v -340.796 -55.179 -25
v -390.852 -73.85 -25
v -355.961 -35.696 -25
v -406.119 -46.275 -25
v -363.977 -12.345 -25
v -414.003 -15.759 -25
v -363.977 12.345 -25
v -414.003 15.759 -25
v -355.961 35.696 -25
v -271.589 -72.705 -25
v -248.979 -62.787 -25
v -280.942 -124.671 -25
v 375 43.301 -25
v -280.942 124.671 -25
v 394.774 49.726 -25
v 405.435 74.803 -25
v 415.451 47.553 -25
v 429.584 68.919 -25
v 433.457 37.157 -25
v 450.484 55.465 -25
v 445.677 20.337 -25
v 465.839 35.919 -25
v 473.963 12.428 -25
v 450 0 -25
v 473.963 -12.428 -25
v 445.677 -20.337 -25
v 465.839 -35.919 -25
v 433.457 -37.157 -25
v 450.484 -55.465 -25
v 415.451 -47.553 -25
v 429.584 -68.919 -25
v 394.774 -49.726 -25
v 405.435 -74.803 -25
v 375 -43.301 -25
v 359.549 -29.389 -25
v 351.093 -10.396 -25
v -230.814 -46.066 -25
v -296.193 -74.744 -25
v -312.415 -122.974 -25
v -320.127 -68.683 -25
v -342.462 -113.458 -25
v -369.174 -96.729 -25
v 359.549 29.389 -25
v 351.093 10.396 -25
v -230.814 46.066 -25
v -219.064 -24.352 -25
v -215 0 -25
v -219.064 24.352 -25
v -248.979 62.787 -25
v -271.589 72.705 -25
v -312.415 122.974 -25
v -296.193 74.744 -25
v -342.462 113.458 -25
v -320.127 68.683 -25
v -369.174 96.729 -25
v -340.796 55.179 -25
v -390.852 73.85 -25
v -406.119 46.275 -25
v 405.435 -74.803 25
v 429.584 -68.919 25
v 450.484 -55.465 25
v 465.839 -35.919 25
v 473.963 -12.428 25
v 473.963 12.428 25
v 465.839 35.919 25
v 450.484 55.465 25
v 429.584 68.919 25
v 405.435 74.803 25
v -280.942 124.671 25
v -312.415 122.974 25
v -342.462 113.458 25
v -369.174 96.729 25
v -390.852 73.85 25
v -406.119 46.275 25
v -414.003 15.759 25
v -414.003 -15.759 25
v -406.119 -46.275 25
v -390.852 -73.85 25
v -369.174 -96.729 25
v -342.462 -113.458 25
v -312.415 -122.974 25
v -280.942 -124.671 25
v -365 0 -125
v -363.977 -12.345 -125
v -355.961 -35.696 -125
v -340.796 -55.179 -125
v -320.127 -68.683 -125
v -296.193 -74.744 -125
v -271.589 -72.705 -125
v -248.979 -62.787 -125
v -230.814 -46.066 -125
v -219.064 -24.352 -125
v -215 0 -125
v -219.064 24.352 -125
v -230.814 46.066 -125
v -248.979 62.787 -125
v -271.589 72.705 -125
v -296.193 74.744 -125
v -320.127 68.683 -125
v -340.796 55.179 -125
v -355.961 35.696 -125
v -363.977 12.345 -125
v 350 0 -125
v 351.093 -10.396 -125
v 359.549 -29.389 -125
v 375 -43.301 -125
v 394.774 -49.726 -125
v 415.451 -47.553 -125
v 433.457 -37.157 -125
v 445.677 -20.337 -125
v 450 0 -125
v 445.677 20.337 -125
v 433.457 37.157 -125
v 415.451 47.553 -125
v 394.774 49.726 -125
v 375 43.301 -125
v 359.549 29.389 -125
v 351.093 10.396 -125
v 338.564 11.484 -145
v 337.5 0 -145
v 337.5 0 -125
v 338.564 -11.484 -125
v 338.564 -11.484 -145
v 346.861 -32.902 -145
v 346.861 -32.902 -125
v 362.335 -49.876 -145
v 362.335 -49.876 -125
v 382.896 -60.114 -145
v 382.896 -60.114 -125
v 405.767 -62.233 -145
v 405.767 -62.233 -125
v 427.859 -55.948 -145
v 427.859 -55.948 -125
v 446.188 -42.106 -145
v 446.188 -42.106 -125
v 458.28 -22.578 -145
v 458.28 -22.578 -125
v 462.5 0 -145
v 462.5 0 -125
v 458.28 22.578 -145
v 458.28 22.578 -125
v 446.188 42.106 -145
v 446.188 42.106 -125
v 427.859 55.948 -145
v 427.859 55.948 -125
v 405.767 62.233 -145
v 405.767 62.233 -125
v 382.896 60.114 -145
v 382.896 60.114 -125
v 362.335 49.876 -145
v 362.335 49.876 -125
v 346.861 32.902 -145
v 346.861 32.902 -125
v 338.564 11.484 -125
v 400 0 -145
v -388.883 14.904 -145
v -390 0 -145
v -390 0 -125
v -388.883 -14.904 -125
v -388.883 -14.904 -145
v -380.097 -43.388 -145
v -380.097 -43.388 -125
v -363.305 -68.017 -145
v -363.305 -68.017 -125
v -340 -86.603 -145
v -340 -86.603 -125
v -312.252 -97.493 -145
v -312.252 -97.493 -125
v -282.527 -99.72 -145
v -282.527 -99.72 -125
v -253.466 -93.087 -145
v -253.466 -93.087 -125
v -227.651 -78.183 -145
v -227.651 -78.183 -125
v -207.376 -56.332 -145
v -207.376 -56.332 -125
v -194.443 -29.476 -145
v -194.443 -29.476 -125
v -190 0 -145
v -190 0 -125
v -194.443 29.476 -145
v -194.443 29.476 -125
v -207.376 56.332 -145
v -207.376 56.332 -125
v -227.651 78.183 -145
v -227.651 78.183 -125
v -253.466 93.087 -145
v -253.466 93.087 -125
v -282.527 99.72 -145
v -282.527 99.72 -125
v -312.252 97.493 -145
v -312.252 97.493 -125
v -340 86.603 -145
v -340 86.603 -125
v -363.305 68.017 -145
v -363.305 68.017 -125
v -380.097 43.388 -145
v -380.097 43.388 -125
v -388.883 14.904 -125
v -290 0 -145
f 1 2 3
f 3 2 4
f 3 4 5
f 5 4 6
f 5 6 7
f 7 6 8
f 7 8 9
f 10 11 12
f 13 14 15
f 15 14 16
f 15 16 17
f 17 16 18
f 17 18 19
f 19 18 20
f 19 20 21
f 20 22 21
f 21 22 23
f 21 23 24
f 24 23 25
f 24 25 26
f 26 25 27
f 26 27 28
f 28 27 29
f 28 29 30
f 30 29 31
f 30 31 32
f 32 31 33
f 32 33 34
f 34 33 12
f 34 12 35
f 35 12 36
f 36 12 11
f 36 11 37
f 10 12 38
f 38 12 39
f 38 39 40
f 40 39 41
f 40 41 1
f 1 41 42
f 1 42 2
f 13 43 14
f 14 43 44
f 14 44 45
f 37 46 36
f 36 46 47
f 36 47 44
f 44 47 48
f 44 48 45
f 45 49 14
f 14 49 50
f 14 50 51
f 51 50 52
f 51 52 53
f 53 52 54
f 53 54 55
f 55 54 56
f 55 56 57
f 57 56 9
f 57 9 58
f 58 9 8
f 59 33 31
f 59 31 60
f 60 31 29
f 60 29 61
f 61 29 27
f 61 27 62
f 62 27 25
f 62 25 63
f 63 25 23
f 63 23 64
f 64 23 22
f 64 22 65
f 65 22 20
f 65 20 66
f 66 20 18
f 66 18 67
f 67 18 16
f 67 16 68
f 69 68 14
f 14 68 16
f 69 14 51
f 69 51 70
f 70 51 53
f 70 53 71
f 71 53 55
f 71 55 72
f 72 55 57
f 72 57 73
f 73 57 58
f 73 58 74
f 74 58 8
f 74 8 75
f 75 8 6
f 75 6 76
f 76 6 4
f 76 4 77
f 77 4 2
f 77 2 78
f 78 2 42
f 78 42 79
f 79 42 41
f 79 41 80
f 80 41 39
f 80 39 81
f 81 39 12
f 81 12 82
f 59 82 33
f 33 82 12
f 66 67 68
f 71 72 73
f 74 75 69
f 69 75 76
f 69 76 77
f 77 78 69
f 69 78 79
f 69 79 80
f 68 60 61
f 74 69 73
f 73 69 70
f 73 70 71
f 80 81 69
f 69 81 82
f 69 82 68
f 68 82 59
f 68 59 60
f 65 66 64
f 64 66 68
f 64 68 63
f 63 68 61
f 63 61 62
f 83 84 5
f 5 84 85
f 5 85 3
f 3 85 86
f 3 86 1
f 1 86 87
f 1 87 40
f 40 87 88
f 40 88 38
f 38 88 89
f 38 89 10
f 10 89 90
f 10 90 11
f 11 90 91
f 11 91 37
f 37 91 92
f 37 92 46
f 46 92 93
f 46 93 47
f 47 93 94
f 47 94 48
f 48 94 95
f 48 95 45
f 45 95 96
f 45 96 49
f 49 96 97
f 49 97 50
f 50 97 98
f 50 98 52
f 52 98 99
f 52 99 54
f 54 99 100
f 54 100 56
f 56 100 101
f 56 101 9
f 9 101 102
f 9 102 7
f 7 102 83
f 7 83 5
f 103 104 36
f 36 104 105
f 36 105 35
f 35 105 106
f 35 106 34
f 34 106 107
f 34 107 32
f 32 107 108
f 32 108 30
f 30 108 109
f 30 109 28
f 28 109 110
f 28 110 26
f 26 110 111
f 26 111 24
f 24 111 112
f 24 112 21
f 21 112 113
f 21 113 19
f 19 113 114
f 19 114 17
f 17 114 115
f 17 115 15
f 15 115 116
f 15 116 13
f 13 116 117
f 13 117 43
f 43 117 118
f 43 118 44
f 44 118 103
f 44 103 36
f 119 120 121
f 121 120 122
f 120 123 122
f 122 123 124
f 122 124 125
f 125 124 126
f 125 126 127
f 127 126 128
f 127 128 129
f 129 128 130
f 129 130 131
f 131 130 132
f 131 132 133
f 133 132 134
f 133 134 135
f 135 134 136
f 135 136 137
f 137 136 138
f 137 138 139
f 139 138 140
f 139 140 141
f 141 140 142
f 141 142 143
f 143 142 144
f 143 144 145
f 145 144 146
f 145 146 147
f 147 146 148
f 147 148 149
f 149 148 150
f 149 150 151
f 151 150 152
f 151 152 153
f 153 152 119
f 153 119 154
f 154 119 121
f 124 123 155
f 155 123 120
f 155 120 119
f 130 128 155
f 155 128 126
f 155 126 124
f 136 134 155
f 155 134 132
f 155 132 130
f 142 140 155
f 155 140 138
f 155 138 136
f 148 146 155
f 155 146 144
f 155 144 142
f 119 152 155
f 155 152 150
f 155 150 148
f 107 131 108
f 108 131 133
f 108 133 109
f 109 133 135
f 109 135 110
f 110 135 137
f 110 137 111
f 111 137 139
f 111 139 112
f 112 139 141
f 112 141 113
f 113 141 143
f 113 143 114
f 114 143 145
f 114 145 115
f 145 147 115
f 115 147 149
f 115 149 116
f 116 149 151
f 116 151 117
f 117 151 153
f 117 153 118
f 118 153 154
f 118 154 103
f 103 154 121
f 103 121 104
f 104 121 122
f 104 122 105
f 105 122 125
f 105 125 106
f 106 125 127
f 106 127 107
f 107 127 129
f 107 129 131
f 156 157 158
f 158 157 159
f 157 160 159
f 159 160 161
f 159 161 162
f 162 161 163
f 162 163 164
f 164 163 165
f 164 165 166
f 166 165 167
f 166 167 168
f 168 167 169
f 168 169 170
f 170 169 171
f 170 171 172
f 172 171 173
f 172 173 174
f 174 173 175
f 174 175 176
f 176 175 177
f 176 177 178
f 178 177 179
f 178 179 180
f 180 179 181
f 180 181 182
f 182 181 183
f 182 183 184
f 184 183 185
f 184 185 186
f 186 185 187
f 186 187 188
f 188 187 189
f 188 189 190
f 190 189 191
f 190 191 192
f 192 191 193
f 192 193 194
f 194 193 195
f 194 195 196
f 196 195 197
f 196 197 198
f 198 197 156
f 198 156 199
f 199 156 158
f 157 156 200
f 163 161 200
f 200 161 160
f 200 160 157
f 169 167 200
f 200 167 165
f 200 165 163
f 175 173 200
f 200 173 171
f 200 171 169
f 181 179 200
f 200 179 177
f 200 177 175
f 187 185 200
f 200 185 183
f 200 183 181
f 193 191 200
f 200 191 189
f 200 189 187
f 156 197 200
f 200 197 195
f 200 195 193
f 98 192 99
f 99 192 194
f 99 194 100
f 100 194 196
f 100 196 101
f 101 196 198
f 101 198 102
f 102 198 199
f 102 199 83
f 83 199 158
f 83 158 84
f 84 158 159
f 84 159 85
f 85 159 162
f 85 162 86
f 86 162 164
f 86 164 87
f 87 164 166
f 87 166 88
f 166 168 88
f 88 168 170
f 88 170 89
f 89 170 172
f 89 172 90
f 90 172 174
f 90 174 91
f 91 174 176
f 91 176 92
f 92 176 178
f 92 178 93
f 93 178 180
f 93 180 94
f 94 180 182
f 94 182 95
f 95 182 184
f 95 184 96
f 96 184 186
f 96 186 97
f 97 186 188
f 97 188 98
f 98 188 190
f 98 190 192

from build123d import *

# Parameters (mm, degrees)
BOSS_EXTRUDE1_DEPTH = 25
SKETCH2_R           = 75
SKETCH2_R_2         = 50
BOSS_EXTRUDE2_DEPTH = 100
SKETCH3_R           = 62.5
SKETCH3_R_2         = 100
BOSS_EXTRUDE3_DEPTH = 20


with BuildPart() as part:
    # Sketch1 → Boss-Extrude1 (new, symmetric)
    with BuildSketch(Plane.XY):
        with BuildLine():
            ThreePointArc((-215, 0), (-290, 75), (-365, 0))
            Line((-365, 0), (-215, 0))
        make_face()
        with BuildLine():
            Line((-215, 0), (-365, 0))
            ThreePointArc((-365, 0), (-290, -75), (-215, 0))
        make_face()
        with BuildLine():
            Line((405.434782609, 74.802828409), (-280.942028986, 124.671380682))
            ThreePointArc((-280.942028986, 124.671380682), (-375.125653076, 91.534819541), (-415, 0))
            Line((-415, 0), (-365, 0))
            ThreePointArc((-365, 0), (-290, 75), (-215, 0))
            Line((-215, 0), (350, 0))
            ThreePointArc((350, 0), (400, 50), (450, 0))
            Line((450, 0), (475, 0))
            ThreePointArc((475, 0), (454.920891725, 51.075391846), (405.434782609, 74.802828409))
        make_face()
        with BuildLine():
            Line((-365, 0), (-415, 0))
            ThreePointArc((-415, 0), (-375.125653076, -91.534819541), (-280.942028986, -124.671380682))
            Line((-280.942028986, -124.671380682), (405.434782609, -74.802828409))
            ThreePointArc((405.434782609, -74.802828409), (454.920891725, -51.075391846), (475, 0))
            Line((475, 0), (450, 0))
            ThreePointArc((450, 0), (400, -50), (350, 0))
            Line((350, 0), (-215, 0))
            ThreePointArc((-215, 0), (-290, -75), (-365, 0))
        make_face()
        with BuildLine():
            ThreePointArc((350, 0), (400, -50), (450, 0))
            Line((450, 0), (350, 0))
        make_face()
        with BuildLine():
            Line((350, 0), (450, 0))
            ThreePointArc((450, 0), (400, 50), (350, 0))
        make_face()
    extrude(amount=BOSS_EXTRUDE1_DEPTH, both=True)

    # Sketch2 → Boss-Extrude2 (add)
    with BuildSketch(Plane(origin=(0, 0, -25), x_dir=(-1, 0, 0), z_dir=(0, 0, -1))):
        with Locations(Location((290, 0, 0), (0, 0, 180))):
            Circle(SKETCH2_R)
        with Locations(Location((-400, 0, 0), (0, 0, 180))):
            Circle(SKETCH2_R_2)
    extrude(amount=BOSS_EXTRUDE2_DEPTH)

    # Sketch3 → Boss-Extrude3 (add)
    with BuildSketch(Plane(origin=(0, 0, -125), x_dir=(-1, 0, 0), z_dir=(0, 0, -1))):
        with Locations((-400, 0)):
            Circle(SKETCH3_R)
        with Locations((290, 0)):
            Circle(SKETCH3_R_2)
    extrude(amount=BOSS_EXTRUDE3_DEPTH)


solid = part.part
